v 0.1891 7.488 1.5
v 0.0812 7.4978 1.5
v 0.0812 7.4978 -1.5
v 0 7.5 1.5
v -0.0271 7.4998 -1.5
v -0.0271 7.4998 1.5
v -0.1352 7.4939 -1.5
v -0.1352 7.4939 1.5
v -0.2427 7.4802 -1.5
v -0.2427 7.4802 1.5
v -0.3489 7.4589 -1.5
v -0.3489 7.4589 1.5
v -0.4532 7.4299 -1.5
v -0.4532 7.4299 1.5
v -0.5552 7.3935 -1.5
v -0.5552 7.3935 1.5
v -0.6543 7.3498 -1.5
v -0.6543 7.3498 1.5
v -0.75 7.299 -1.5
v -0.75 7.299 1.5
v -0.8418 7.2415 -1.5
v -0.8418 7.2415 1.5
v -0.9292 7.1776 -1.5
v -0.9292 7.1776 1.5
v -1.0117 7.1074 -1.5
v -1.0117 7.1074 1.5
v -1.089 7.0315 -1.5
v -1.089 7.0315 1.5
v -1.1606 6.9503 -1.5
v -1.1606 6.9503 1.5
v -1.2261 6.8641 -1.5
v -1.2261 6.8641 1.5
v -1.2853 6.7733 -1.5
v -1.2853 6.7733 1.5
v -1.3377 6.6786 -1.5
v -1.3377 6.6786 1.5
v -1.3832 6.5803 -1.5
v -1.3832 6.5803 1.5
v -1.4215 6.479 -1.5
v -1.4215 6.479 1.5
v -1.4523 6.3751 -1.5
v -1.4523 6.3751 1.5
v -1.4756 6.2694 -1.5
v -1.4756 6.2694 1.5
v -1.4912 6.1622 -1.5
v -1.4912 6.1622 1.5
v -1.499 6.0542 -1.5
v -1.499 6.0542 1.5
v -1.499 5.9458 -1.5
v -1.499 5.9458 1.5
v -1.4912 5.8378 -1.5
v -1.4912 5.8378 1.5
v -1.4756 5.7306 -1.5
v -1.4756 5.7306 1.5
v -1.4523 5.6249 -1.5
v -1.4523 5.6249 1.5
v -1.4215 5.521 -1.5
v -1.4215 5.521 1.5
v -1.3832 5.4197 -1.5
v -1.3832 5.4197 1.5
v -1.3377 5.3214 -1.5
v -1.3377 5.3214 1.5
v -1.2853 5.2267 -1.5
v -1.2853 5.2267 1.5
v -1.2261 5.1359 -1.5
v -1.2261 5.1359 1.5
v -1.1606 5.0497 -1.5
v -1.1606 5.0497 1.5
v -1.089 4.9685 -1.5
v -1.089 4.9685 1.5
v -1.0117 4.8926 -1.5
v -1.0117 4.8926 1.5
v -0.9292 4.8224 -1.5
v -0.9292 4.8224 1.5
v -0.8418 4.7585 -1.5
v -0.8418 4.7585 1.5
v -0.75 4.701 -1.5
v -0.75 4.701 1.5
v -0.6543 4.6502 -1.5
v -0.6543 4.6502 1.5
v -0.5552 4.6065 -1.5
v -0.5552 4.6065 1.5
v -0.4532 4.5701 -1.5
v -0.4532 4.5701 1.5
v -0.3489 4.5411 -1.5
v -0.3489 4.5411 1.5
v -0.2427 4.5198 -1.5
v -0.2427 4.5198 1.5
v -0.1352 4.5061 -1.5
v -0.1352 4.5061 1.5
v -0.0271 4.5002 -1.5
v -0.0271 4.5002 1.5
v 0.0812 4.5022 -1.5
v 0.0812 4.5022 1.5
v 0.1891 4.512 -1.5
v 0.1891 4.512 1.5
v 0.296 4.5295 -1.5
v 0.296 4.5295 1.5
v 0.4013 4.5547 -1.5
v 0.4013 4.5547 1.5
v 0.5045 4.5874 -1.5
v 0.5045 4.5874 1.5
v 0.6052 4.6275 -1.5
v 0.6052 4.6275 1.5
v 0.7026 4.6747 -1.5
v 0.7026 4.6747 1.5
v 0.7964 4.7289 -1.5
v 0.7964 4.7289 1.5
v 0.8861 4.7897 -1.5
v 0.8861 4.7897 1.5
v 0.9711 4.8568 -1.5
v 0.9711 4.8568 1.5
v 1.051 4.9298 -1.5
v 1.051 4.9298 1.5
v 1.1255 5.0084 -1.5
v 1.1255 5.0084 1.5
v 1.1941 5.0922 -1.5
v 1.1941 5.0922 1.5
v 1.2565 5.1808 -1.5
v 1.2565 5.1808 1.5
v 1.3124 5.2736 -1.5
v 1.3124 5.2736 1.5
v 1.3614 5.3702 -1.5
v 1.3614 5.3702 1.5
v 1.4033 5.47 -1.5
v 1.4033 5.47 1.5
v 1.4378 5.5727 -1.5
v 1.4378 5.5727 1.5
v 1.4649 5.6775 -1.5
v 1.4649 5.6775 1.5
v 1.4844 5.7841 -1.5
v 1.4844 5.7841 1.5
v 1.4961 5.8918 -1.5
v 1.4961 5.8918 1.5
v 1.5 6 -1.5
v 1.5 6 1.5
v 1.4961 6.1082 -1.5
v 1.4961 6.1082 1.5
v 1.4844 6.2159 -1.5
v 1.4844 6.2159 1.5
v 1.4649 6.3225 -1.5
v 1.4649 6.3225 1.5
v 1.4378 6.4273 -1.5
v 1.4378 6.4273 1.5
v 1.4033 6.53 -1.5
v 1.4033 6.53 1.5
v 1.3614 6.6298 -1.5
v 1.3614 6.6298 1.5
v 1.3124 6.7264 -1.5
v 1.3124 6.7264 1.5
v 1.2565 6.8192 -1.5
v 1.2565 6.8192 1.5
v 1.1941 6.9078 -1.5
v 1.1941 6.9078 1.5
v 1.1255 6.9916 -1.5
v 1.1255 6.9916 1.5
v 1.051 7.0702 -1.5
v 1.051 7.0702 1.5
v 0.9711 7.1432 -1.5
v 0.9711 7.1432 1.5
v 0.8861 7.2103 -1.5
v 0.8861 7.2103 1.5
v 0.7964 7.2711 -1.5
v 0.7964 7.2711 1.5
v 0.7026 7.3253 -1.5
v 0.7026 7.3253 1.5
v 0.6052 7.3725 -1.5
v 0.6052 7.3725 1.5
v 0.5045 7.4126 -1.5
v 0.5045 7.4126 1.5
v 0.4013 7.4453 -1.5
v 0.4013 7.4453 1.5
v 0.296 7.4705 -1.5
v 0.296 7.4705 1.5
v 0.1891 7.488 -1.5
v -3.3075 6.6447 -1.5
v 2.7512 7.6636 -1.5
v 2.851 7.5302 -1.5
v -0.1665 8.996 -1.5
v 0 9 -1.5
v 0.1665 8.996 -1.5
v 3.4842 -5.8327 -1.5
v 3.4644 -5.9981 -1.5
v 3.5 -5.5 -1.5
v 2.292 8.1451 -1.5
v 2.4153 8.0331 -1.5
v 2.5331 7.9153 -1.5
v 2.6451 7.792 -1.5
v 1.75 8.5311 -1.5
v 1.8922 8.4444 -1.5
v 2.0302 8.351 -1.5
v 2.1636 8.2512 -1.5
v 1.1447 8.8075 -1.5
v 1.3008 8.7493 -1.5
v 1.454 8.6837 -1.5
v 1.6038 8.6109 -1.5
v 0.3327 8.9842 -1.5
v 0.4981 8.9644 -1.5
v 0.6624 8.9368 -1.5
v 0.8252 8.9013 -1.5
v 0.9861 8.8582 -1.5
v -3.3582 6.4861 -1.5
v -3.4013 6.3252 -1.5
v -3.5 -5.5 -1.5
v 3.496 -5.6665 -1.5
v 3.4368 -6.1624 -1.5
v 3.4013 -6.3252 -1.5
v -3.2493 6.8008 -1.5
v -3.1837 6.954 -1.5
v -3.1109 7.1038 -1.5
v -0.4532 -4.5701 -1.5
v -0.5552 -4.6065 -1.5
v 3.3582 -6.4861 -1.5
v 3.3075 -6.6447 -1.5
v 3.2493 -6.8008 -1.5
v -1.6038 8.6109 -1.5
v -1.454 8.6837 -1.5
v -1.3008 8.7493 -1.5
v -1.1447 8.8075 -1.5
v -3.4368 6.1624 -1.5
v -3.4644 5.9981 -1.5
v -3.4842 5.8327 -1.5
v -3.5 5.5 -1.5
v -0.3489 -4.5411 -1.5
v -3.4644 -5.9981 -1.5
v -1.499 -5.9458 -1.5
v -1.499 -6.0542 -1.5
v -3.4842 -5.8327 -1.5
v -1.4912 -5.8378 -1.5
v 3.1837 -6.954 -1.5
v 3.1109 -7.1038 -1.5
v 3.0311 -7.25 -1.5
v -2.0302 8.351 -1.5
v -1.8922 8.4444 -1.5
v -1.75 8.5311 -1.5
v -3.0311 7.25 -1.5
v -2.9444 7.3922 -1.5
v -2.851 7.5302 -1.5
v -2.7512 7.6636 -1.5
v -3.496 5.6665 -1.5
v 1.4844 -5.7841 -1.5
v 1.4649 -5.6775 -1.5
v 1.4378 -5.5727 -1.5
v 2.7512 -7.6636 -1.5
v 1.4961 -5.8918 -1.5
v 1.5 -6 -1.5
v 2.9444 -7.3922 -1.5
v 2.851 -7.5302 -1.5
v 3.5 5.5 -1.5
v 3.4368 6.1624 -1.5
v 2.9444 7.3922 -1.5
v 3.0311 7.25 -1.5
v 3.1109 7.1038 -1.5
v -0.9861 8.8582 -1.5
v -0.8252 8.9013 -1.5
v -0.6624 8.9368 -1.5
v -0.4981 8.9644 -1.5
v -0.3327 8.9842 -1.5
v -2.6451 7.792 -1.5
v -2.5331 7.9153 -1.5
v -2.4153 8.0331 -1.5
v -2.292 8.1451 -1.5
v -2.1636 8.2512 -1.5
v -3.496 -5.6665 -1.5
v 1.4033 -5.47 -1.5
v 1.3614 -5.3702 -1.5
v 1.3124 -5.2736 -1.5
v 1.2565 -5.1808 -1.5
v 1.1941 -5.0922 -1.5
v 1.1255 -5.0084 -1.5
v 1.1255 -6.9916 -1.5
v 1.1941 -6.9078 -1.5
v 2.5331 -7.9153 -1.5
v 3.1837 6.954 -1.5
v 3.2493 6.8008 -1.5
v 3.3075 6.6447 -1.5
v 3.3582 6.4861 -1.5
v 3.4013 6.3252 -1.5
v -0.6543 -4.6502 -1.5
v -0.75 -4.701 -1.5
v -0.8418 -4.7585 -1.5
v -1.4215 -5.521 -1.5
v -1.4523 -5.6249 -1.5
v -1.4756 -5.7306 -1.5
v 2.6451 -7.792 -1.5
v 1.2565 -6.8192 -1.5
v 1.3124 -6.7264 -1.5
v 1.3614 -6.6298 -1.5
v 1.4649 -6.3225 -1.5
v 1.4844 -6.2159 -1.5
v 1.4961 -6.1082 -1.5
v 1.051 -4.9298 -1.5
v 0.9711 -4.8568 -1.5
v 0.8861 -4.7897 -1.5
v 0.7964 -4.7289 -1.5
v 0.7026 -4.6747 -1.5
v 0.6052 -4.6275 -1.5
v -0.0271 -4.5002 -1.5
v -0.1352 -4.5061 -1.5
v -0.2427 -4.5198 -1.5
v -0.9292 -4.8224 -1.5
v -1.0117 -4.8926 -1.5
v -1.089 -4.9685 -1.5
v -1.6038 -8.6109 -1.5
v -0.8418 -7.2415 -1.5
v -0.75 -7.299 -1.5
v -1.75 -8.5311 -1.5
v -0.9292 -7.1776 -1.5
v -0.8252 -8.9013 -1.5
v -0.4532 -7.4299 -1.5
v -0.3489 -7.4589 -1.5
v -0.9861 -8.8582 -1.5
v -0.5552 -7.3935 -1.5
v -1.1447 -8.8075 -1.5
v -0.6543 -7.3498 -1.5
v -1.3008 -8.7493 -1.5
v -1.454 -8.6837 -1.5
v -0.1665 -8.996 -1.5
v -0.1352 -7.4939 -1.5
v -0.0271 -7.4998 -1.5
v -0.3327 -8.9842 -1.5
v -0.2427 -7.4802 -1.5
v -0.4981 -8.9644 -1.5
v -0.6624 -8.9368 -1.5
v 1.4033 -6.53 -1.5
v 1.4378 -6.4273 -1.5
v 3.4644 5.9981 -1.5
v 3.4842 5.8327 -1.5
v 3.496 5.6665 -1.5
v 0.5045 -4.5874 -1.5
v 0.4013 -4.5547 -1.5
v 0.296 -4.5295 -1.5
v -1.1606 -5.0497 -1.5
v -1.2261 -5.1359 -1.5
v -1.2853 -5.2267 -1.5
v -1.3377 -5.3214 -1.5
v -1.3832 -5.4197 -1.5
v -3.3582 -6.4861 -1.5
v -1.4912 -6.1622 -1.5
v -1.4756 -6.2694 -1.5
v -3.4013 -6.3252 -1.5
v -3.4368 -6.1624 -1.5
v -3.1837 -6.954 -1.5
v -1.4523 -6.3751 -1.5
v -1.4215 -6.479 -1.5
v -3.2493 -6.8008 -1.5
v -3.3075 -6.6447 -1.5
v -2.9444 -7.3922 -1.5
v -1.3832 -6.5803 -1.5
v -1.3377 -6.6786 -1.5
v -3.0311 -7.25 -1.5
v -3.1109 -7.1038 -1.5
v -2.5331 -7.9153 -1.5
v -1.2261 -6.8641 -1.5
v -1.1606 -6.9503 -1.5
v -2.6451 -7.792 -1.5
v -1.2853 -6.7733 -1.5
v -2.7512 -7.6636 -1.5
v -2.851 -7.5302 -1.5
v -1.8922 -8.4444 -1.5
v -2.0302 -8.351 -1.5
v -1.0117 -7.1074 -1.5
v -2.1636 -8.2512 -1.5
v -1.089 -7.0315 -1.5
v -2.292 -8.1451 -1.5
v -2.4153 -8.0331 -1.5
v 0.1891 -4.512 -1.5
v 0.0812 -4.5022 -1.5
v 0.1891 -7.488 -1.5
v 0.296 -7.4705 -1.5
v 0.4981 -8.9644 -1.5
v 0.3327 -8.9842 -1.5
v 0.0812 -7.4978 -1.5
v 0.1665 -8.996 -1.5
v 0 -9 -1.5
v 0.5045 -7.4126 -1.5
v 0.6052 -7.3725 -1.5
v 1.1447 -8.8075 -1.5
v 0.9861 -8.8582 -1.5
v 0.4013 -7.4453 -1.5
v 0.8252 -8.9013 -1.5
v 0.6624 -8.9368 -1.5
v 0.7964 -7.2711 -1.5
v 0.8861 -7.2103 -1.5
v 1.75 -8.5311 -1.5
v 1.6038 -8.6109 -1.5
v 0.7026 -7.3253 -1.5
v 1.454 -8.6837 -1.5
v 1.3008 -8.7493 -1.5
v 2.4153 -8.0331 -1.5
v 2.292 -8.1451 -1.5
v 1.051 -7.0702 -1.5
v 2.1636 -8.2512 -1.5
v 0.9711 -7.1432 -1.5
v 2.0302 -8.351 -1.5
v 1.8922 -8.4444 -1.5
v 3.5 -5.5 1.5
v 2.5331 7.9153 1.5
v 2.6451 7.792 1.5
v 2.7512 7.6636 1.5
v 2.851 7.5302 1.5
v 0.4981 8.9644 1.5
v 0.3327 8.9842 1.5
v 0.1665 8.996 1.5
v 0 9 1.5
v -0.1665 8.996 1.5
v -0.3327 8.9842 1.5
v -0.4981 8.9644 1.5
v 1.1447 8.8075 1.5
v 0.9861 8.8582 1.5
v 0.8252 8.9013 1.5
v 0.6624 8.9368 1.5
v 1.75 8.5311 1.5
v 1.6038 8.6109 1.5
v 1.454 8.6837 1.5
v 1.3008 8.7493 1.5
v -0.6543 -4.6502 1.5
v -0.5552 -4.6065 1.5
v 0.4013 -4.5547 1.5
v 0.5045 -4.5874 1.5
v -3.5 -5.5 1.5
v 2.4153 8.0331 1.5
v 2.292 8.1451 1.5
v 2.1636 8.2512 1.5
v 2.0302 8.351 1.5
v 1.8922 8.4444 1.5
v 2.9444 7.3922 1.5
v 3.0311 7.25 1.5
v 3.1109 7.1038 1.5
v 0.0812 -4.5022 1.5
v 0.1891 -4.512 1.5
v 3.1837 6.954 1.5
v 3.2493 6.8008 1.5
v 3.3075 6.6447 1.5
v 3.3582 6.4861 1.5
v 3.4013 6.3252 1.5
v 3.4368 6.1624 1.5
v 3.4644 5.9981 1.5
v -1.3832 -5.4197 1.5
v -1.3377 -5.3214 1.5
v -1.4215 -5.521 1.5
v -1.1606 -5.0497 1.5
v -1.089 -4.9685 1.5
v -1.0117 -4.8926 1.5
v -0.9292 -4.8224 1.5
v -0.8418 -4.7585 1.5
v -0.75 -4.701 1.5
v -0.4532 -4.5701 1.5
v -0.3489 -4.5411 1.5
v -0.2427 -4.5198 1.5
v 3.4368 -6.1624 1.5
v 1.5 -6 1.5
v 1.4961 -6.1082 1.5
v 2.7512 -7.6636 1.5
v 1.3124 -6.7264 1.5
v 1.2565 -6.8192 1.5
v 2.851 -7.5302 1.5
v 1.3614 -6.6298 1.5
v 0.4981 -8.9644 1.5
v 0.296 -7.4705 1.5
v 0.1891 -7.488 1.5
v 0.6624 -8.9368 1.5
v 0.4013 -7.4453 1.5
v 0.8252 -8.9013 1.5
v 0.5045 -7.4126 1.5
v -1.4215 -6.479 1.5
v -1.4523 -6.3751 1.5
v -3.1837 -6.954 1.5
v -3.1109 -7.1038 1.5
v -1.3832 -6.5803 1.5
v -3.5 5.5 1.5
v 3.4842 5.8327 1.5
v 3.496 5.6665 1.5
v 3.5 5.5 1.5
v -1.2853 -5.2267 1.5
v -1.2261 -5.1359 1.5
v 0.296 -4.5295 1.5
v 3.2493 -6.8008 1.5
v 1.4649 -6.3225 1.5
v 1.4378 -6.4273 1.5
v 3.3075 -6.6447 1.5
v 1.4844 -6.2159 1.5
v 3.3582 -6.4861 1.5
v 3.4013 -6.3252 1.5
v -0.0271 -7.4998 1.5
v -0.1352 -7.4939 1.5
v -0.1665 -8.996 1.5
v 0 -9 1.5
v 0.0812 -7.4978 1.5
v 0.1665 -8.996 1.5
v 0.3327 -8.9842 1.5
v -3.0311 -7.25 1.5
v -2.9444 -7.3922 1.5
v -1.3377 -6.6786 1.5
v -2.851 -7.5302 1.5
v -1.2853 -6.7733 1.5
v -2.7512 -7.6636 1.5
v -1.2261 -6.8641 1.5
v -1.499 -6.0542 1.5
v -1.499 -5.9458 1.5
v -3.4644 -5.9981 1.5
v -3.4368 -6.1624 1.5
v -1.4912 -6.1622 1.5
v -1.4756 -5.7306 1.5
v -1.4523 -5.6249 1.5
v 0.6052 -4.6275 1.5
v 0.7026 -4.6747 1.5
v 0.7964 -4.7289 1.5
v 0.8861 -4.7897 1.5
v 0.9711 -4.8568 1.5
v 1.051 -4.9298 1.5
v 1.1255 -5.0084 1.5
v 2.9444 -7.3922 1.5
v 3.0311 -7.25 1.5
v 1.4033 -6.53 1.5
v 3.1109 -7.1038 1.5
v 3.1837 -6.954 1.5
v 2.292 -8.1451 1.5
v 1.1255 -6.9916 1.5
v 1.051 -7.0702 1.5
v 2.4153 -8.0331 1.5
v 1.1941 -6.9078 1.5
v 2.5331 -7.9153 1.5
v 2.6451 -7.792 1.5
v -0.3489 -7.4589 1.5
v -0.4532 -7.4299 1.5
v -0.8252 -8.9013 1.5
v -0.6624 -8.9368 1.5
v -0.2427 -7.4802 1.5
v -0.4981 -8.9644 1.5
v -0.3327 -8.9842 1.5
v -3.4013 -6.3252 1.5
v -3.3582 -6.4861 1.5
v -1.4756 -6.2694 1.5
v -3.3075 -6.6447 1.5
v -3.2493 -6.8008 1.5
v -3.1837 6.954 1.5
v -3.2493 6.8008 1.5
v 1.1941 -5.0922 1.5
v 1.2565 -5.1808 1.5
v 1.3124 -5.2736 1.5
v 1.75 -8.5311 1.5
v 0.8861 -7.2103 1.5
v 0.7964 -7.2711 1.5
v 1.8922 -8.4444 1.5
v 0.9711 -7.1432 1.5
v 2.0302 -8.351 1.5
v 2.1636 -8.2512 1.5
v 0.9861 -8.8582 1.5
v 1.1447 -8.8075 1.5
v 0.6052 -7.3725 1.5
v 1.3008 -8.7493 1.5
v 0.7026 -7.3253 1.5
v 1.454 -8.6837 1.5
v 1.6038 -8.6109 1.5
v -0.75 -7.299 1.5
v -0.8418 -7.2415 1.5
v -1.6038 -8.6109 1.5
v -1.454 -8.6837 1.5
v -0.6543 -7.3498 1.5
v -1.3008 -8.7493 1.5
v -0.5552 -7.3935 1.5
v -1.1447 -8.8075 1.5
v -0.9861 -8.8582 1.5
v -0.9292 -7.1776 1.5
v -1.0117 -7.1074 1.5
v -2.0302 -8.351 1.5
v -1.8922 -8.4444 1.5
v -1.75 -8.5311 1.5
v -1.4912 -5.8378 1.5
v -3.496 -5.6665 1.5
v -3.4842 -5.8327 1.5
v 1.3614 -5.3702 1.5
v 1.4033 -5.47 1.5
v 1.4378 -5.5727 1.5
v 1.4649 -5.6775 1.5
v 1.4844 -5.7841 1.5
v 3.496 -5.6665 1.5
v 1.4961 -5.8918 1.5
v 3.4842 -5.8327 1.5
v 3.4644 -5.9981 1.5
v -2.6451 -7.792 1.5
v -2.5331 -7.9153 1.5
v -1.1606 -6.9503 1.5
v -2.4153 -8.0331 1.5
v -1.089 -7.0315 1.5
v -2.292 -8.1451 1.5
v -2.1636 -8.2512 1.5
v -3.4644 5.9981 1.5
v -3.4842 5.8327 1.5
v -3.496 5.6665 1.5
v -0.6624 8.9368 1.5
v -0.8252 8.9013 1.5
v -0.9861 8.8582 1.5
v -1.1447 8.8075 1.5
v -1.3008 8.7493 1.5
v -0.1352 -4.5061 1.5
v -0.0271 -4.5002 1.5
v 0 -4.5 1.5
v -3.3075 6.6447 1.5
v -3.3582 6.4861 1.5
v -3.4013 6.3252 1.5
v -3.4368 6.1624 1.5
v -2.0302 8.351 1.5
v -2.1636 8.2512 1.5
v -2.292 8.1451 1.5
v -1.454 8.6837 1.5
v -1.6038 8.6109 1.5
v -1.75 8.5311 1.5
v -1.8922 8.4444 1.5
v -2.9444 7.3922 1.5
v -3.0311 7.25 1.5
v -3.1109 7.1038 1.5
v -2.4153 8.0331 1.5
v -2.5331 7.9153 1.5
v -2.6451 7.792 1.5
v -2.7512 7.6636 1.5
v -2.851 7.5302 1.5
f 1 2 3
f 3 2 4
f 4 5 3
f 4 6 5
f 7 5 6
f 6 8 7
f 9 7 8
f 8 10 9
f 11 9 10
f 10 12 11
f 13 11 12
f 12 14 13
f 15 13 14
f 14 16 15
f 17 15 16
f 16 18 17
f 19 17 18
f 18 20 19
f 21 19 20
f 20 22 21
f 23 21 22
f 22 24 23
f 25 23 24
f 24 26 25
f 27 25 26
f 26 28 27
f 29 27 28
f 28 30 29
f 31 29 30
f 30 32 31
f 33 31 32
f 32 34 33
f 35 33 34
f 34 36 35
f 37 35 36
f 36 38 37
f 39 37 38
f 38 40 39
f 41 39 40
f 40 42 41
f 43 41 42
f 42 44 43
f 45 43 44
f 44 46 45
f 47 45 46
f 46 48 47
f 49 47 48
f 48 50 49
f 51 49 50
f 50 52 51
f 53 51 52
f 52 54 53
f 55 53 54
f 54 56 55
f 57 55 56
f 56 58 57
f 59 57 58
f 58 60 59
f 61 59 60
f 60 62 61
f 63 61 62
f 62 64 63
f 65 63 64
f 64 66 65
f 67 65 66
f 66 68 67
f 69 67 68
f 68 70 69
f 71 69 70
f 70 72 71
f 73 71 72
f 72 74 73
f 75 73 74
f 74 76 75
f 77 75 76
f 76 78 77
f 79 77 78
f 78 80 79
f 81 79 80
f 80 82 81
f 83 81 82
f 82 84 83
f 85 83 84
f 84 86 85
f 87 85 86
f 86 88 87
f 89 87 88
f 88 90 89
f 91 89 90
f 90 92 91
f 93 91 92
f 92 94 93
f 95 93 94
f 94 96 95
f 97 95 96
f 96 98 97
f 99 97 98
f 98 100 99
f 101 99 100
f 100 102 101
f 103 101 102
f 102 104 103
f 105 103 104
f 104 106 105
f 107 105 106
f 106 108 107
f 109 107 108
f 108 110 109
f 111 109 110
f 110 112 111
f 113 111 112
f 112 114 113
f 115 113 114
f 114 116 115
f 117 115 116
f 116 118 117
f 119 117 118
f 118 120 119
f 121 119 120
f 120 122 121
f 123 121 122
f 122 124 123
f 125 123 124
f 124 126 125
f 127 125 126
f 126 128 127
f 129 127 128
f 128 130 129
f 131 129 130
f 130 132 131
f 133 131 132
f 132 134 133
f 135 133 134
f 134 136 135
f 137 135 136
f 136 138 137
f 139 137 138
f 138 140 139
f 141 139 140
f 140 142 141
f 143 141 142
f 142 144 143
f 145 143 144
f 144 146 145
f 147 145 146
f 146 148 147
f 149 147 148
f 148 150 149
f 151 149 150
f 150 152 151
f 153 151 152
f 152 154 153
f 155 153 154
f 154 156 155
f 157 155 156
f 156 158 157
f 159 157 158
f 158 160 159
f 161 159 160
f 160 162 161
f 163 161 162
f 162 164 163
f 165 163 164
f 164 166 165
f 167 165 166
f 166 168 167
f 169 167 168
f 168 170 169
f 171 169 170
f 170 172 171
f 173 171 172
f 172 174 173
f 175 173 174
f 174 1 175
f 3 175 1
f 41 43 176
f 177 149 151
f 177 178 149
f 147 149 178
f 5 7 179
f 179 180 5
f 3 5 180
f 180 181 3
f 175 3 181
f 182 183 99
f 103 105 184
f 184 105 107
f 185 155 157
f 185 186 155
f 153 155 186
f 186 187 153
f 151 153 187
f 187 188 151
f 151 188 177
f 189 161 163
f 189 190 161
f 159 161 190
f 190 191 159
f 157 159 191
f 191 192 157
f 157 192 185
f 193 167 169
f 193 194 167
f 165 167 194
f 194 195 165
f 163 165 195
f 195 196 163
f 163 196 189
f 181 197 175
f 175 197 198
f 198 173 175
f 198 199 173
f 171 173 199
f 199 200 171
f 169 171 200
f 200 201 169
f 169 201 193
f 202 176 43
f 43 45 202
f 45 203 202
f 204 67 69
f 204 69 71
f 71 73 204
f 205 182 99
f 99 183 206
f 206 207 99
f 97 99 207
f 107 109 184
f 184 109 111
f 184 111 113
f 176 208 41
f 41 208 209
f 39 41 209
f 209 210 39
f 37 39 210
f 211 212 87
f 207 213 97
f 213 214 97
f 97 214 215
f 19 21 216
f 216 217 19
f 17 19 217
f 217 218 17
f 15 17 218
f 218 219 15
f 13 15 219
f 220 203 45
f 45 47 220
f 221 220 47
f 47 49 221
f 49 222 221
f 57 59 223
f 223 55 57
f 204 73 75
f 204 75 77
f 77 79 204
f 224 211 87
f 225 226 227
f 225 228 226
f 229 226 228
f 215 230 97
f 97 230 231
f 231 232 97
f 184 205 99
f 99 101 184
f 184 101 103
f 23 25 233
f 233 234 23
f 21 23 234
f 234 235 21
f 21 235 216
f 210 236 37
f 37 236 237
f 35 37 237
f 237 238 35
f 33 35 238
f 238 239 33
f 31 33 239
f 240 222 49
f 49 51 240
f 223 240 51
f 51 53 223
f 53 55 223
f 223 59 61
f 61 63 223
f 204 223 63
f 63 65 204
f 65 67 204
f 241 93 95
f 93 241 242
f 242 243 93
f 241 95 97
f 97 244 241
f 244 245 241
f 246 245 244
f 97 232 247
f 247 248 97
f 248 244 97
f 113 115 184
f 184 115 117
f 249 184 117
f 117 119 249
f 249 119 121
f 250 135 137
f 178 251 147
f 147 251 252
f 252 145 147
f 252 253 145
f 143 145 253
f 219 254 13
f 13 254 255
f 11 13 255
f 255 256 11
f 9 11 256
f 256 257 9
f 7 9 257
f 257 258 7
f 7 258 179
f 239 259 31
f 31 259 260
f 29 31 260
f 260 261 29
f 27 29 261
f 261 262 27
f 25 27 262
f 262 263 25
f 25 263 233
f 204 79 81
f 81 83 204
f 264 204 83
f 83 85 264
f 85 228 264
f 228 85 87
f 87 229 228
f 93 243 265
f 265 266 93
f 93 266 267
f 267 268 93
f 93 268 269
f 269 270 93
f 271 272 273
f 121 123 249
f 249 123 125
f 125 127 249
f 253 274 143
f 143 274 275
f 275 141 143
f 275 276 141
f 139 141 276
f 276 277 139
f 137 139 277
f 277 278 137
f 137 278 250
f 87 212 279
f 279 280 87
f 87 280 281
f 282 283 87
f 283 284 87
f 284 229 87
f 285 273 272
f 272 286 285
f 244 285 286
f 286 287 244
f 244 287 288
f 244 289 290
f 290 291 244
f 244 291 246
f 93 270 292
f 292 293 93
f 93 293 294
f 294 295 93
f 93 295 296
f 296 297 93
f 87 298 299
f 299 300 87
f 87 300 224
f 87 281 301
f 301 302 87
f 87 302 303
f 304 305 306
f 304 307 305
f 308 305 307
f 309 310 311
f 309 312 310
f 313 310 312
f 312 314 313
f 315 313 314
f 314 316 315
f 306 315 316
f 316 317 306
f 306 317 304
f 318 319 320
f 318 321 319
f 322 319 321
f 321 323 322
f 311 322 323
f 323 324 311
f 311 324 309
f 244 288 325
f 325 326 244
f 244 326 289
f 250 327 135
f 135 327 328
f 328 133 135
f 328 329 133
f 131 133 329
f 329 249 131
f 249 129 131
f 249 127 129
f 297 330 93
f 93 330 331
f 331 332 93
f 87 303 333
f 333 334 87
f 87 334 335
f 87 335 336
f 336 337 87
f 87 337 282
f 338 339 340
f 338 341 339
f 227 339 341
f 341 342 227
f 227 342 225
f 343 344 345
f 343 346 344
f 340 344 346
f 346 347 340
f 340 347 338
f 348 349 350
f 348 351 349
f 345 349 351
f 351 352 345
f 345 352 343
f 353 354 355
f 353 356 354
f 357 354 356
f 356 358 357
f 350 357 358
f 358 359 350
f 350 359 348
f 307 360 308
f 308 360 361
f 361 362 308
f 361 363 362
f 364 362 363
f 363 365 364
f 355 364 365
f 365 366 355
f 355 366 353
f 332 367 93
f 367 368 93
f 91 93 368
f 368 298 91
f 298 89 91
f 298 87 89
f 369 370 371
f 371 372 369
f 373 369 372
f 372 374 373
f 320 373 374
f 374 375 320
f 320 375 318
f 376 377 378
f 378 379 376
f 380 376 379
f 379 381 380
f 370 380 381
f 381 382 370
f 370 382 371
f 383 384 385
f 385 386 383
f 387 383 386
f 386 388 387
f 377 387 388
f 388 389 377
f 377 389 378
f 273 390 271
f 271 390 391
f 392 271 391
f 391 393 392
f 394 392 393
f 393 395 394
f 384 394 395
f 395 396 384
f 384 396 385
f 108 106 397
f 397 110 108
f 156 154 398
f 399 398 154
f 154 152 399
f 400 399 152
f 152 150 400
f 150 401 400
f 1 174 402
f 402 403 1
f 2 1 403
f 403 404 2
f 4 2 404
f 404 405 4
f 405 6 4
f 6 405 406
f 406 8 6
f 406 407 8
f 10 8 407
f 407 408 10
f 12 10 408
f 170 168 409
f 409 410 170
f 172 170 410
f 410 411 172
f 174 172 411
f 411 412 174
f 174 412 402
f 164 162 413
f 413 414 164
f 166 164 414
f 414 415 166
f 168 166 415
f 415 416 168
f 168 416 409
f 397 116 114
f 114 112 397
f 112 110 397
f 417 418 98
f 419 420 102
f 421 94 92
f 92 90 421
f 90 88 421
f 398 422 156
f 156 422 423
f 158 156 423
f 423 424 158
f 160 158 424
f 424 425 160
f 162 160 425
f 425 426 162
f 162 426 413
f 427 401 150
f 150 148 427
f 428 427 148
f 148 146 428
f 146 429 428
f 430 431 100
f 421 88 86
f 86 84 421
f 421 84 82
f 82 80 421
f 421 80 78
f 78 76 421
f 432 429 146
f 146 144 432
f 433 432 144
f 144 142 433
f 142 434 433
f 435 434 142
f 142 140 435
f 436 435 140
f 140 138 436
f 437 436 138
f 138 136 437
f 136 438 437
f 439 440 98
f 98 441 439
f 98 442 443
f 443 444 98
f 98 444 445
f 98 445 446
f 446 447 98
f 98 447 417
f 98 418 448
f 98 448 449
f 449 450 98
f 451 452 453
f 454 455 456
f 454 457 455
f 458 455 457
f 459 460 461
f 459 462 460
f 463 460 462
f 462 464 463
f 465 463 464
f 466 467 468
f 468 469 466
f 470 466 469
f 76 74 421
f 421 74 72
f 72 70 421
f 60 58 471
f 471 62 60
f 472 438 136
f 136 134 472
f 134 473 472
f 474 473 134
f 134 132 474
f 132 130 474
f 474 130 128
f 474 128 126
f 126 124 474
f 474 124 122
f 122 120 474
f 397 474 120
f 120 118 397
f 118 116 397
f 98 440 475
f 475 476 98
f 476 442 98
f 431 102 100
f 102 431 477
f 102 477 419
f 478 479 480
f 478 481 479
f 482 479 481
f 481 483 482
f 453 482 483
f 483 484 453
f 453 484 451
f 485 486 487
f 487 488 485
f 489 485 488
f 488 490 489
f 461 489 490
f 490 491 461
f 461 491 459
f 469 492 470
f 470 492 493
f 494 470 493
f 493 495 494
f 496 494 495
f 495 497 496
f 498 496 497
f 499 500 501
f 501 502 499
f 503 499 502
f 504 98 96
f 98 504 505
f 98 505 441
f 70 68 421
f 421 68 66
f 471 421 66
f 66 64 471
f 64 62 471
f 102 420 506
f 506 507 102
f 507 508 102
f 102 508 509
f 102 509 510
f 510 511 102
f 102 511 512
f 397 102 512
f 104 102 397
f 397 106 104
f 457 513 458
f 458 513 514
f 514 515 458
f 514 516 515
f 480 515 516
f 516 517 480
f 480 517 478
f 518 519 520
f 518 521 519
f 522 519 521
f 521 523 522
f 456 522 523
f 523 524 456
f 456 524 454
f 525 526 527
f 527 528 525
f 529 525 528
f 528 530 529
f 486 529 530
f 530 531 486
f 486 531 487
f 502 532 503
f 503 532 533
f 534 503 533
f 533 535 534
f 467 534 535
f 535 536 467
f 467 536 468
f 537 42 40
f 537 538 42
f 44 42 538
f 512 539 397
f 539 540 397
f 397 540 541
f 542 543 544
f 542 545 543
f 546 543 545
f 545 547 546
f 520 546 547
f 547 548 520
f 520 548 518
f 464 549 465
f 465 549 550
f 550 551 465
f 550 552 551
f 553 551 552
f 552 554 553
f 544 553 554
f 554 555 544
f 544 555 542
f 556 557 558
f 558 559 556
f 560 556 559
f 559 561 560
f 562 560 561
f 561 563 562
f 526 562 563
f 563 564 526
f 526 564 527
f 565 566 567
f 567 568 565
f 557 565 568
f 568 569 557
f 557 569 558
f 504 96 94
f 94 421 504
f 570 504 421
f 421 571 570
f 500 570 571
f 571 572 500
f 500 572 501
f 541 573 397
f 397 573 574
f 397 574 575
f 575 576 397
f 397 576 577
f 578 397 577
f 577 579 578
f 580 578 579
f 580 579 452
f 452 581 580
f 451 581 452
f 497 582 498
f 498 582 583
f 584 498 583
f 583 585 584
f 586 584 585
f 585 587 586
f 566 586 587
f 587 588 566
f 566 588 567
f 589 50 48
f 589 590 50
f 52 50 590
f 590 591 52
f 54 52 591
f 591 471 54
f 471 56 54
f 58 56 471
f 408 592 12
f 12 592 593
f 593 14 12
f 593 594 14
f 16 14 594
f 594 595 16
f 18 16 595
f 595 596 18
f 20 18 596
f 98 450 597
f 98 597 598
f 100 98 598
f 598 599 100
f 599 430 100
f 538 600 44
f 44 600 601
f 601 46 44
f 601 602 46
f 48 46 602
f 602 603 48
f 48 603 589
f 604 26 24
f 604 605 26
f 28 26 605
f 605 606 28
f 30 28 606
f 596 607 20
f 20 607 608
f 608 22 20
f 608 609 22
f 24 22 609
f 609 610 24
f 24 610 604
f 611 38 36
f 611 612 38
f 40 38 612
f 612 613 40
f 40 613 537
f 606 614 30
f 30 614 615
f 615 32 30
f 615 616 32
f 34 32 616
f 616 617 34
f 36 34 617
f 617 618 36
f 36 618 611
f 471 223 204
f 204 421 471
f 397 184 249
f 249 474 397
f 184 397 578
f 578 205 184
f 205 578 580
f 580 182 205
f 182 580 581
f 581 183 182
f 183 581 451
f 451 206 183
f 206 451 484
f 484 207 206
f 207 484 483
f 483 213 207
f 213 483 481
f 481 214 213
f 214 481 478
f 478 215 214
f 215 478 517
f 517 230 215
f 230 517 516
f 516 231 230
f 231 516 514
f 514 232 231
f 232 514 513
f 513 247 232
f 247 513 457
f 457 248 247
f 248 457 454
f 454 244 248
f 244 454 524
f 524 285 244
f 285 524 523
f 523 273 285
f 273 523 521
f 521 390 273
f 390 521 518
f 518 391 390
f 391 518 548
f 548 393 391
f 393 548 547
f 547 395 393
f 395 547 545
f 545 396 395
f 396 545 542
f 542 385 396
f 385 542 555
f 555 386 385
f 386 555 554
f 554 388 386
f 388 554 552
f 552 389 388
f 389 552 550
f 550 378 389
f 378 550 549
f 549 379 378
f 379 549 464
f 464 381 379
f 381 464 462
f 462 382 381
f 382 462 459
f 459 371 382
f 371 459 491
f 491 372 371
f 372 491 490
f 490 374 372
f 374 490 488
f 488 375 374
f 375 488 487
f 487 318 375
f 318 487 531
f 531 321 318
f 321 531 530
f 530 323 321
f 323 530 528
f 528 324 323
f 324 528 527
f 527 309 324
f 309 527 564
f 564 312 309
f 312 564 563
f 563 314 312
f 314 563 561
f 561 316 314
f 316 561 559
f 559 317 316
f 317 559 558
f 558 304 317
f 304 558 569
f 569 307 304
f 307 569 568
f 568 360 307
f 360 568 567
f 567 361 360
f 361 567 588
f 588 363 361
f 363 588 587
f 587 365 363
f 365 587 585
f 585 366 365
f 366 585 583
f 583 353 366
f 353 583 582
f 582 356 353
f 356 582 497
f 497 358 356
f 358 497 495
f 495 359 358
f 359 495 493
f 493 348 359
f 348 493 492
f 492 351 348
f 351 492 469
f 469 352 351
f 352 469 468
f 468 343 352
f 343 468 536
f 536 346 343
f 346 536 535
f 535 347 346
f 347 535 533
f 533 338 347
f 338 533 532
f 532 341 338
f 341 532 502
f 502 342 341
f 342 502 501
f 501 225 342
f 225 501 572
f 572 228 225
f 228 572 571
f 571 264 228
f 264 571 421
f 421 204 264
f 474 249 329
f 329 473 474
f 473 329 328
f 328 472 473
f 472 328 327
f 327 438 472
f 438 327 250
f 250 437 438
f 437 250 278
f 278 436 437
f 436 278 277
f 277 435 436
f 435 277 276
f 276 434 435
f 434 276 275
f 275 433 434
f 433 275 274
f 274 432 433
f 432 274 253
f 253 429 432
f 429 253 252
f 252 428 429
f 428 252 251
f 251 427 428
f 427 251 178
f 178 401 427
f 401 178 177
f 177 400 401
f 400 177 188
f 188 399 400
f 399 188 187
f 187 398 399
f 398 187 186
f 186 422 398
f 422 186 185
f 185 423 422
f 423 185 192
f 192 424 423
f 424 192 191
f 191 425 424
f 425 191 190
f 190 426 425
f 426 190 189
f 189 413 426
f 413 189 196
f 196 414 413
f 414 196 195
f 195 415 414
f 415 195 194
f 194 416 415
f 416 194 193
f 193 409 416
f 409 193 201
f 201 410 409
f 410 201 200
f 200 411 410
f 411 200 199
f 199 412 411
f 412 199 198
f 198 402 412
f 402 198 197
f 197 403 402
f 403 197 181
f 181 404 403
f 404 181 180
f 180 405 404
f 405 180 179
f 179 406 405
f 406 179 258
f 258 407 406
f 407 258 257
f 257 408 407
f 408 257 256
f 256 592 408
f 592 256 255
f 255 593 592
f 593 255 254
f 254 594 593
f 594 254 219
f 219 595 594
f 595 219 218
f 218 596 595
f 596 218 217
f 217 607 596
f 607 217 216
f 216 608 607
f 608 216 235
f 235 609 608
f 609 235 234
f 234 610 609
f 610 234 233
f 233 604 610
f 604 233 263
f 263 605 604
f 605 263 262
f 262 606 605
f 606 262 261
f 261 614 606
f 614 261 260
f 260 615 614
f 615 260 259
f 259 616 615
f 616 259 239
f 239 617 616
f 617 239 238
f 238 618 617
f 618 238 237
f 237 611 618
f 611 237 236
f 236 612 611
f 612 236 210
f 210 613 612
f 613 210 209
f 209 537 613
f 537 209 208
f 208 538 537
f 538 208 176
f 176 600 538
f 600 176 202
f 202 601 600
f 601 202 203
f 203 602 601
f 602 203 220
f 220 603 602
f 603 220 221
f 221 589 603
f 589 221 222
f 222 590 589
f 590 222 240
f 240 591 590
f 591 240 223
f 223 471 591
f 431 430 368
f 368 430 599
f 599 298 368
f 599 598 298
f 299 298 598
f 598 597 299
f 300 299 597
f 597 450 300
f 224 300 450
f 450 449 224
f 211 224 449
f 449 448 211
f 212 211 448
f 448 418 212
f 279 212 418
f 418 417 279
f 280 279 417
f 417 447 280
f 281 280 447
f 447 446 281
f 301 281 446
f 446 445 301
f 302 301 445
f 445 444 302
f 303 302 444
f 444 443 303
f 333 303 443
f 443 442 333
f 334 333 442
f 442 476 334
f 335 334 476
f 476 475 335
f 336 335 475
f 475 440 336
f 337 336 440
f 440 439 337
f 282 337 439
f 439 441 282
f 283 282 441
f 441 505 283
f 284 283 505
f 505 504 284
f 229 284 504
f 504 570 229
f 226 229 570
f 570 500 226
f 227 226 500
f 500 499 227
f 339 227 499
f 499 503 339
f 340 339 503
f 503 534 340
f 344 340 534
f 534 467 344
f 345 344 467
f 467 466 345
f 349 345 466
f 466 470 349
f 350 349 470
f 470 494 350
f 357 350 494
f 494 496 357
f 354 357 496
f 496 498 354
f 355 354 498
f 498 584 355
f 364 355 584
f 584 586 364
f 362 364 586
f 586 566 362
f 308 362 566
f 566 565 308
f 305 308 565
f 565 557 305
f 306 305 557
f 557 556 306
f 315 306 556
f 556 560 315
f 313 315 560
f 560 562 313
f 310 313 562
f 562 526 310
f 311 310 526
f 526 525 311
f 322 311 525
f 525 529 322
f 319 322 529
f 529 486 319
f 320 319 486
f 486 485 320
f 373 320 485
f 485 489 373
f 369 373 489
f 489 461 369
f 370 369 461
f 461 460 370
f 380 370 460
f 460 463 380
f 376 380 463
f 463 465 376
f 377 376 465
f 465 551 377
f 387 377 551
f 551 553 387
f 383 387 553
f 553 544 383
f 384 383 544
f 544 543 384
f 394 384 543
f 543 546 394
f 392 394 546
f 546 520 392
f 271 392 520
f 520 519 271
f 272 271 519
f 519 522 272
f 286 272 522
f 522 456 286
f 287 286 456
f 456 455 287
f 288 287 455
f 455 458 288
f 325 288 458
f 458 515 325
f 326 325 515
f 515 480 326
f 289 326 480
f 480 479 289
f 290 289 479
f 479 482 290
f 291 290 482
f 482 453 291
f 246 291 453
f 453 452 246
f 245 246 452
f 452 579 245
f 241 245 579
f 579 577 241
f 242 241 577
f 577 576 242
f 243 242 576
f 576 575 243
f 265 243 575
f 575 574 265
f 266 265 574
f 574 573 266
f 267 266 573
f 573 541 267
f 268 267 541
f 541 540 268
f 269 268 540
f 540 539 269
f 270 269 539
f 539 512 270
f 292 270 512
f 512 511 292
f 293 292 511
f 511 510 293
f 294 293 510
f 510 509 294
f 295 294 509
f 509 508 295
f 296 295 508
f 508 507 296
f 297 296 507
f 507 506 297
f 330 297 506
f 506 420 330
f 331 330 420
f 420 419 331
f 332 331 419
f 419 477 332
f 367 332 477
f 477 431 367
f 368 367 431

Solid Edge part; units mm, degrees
sketch "Sketch1" plane through (0, 0, 0) normal (0, -1, 0) x (1, 0, 0)
  line L0 (-3.5, -1.5) -> (3.5, -1.5)
  line L1 (3.5, -1.5) -> (3.5, 1.5)
  line L2 (3.5, 1.5) -> (-3.5, 1.5)
  line L3 (-3.5, 1.5) -> (-3.5, -1.5)
  dimension "D1" = 7
  dimension "D2" = 3
extrude "Protrusion1" add sketch "Sketch1" along normal mid plane 18
sketch "Sketch2" plane through (0, 0, 1.5) normal (0, 0, 1) x (0, 1, 0)
  circle A0 centre (6, 0) radius 1.5
  circle A1 centre (-6, 0) radius 1.5
  dimension "D1" = 12
extrude "Cutout1" cut sketch "Sketch2" against normal blind 6.4951
fillet "Round_3" radius 3.5 4 edges at (-3.5, -9, 0) (3.5, -9, 0) (3.5, 9, 0) (-3.5, 9, 0)
properties material "Aluminum, 6061-T6"
